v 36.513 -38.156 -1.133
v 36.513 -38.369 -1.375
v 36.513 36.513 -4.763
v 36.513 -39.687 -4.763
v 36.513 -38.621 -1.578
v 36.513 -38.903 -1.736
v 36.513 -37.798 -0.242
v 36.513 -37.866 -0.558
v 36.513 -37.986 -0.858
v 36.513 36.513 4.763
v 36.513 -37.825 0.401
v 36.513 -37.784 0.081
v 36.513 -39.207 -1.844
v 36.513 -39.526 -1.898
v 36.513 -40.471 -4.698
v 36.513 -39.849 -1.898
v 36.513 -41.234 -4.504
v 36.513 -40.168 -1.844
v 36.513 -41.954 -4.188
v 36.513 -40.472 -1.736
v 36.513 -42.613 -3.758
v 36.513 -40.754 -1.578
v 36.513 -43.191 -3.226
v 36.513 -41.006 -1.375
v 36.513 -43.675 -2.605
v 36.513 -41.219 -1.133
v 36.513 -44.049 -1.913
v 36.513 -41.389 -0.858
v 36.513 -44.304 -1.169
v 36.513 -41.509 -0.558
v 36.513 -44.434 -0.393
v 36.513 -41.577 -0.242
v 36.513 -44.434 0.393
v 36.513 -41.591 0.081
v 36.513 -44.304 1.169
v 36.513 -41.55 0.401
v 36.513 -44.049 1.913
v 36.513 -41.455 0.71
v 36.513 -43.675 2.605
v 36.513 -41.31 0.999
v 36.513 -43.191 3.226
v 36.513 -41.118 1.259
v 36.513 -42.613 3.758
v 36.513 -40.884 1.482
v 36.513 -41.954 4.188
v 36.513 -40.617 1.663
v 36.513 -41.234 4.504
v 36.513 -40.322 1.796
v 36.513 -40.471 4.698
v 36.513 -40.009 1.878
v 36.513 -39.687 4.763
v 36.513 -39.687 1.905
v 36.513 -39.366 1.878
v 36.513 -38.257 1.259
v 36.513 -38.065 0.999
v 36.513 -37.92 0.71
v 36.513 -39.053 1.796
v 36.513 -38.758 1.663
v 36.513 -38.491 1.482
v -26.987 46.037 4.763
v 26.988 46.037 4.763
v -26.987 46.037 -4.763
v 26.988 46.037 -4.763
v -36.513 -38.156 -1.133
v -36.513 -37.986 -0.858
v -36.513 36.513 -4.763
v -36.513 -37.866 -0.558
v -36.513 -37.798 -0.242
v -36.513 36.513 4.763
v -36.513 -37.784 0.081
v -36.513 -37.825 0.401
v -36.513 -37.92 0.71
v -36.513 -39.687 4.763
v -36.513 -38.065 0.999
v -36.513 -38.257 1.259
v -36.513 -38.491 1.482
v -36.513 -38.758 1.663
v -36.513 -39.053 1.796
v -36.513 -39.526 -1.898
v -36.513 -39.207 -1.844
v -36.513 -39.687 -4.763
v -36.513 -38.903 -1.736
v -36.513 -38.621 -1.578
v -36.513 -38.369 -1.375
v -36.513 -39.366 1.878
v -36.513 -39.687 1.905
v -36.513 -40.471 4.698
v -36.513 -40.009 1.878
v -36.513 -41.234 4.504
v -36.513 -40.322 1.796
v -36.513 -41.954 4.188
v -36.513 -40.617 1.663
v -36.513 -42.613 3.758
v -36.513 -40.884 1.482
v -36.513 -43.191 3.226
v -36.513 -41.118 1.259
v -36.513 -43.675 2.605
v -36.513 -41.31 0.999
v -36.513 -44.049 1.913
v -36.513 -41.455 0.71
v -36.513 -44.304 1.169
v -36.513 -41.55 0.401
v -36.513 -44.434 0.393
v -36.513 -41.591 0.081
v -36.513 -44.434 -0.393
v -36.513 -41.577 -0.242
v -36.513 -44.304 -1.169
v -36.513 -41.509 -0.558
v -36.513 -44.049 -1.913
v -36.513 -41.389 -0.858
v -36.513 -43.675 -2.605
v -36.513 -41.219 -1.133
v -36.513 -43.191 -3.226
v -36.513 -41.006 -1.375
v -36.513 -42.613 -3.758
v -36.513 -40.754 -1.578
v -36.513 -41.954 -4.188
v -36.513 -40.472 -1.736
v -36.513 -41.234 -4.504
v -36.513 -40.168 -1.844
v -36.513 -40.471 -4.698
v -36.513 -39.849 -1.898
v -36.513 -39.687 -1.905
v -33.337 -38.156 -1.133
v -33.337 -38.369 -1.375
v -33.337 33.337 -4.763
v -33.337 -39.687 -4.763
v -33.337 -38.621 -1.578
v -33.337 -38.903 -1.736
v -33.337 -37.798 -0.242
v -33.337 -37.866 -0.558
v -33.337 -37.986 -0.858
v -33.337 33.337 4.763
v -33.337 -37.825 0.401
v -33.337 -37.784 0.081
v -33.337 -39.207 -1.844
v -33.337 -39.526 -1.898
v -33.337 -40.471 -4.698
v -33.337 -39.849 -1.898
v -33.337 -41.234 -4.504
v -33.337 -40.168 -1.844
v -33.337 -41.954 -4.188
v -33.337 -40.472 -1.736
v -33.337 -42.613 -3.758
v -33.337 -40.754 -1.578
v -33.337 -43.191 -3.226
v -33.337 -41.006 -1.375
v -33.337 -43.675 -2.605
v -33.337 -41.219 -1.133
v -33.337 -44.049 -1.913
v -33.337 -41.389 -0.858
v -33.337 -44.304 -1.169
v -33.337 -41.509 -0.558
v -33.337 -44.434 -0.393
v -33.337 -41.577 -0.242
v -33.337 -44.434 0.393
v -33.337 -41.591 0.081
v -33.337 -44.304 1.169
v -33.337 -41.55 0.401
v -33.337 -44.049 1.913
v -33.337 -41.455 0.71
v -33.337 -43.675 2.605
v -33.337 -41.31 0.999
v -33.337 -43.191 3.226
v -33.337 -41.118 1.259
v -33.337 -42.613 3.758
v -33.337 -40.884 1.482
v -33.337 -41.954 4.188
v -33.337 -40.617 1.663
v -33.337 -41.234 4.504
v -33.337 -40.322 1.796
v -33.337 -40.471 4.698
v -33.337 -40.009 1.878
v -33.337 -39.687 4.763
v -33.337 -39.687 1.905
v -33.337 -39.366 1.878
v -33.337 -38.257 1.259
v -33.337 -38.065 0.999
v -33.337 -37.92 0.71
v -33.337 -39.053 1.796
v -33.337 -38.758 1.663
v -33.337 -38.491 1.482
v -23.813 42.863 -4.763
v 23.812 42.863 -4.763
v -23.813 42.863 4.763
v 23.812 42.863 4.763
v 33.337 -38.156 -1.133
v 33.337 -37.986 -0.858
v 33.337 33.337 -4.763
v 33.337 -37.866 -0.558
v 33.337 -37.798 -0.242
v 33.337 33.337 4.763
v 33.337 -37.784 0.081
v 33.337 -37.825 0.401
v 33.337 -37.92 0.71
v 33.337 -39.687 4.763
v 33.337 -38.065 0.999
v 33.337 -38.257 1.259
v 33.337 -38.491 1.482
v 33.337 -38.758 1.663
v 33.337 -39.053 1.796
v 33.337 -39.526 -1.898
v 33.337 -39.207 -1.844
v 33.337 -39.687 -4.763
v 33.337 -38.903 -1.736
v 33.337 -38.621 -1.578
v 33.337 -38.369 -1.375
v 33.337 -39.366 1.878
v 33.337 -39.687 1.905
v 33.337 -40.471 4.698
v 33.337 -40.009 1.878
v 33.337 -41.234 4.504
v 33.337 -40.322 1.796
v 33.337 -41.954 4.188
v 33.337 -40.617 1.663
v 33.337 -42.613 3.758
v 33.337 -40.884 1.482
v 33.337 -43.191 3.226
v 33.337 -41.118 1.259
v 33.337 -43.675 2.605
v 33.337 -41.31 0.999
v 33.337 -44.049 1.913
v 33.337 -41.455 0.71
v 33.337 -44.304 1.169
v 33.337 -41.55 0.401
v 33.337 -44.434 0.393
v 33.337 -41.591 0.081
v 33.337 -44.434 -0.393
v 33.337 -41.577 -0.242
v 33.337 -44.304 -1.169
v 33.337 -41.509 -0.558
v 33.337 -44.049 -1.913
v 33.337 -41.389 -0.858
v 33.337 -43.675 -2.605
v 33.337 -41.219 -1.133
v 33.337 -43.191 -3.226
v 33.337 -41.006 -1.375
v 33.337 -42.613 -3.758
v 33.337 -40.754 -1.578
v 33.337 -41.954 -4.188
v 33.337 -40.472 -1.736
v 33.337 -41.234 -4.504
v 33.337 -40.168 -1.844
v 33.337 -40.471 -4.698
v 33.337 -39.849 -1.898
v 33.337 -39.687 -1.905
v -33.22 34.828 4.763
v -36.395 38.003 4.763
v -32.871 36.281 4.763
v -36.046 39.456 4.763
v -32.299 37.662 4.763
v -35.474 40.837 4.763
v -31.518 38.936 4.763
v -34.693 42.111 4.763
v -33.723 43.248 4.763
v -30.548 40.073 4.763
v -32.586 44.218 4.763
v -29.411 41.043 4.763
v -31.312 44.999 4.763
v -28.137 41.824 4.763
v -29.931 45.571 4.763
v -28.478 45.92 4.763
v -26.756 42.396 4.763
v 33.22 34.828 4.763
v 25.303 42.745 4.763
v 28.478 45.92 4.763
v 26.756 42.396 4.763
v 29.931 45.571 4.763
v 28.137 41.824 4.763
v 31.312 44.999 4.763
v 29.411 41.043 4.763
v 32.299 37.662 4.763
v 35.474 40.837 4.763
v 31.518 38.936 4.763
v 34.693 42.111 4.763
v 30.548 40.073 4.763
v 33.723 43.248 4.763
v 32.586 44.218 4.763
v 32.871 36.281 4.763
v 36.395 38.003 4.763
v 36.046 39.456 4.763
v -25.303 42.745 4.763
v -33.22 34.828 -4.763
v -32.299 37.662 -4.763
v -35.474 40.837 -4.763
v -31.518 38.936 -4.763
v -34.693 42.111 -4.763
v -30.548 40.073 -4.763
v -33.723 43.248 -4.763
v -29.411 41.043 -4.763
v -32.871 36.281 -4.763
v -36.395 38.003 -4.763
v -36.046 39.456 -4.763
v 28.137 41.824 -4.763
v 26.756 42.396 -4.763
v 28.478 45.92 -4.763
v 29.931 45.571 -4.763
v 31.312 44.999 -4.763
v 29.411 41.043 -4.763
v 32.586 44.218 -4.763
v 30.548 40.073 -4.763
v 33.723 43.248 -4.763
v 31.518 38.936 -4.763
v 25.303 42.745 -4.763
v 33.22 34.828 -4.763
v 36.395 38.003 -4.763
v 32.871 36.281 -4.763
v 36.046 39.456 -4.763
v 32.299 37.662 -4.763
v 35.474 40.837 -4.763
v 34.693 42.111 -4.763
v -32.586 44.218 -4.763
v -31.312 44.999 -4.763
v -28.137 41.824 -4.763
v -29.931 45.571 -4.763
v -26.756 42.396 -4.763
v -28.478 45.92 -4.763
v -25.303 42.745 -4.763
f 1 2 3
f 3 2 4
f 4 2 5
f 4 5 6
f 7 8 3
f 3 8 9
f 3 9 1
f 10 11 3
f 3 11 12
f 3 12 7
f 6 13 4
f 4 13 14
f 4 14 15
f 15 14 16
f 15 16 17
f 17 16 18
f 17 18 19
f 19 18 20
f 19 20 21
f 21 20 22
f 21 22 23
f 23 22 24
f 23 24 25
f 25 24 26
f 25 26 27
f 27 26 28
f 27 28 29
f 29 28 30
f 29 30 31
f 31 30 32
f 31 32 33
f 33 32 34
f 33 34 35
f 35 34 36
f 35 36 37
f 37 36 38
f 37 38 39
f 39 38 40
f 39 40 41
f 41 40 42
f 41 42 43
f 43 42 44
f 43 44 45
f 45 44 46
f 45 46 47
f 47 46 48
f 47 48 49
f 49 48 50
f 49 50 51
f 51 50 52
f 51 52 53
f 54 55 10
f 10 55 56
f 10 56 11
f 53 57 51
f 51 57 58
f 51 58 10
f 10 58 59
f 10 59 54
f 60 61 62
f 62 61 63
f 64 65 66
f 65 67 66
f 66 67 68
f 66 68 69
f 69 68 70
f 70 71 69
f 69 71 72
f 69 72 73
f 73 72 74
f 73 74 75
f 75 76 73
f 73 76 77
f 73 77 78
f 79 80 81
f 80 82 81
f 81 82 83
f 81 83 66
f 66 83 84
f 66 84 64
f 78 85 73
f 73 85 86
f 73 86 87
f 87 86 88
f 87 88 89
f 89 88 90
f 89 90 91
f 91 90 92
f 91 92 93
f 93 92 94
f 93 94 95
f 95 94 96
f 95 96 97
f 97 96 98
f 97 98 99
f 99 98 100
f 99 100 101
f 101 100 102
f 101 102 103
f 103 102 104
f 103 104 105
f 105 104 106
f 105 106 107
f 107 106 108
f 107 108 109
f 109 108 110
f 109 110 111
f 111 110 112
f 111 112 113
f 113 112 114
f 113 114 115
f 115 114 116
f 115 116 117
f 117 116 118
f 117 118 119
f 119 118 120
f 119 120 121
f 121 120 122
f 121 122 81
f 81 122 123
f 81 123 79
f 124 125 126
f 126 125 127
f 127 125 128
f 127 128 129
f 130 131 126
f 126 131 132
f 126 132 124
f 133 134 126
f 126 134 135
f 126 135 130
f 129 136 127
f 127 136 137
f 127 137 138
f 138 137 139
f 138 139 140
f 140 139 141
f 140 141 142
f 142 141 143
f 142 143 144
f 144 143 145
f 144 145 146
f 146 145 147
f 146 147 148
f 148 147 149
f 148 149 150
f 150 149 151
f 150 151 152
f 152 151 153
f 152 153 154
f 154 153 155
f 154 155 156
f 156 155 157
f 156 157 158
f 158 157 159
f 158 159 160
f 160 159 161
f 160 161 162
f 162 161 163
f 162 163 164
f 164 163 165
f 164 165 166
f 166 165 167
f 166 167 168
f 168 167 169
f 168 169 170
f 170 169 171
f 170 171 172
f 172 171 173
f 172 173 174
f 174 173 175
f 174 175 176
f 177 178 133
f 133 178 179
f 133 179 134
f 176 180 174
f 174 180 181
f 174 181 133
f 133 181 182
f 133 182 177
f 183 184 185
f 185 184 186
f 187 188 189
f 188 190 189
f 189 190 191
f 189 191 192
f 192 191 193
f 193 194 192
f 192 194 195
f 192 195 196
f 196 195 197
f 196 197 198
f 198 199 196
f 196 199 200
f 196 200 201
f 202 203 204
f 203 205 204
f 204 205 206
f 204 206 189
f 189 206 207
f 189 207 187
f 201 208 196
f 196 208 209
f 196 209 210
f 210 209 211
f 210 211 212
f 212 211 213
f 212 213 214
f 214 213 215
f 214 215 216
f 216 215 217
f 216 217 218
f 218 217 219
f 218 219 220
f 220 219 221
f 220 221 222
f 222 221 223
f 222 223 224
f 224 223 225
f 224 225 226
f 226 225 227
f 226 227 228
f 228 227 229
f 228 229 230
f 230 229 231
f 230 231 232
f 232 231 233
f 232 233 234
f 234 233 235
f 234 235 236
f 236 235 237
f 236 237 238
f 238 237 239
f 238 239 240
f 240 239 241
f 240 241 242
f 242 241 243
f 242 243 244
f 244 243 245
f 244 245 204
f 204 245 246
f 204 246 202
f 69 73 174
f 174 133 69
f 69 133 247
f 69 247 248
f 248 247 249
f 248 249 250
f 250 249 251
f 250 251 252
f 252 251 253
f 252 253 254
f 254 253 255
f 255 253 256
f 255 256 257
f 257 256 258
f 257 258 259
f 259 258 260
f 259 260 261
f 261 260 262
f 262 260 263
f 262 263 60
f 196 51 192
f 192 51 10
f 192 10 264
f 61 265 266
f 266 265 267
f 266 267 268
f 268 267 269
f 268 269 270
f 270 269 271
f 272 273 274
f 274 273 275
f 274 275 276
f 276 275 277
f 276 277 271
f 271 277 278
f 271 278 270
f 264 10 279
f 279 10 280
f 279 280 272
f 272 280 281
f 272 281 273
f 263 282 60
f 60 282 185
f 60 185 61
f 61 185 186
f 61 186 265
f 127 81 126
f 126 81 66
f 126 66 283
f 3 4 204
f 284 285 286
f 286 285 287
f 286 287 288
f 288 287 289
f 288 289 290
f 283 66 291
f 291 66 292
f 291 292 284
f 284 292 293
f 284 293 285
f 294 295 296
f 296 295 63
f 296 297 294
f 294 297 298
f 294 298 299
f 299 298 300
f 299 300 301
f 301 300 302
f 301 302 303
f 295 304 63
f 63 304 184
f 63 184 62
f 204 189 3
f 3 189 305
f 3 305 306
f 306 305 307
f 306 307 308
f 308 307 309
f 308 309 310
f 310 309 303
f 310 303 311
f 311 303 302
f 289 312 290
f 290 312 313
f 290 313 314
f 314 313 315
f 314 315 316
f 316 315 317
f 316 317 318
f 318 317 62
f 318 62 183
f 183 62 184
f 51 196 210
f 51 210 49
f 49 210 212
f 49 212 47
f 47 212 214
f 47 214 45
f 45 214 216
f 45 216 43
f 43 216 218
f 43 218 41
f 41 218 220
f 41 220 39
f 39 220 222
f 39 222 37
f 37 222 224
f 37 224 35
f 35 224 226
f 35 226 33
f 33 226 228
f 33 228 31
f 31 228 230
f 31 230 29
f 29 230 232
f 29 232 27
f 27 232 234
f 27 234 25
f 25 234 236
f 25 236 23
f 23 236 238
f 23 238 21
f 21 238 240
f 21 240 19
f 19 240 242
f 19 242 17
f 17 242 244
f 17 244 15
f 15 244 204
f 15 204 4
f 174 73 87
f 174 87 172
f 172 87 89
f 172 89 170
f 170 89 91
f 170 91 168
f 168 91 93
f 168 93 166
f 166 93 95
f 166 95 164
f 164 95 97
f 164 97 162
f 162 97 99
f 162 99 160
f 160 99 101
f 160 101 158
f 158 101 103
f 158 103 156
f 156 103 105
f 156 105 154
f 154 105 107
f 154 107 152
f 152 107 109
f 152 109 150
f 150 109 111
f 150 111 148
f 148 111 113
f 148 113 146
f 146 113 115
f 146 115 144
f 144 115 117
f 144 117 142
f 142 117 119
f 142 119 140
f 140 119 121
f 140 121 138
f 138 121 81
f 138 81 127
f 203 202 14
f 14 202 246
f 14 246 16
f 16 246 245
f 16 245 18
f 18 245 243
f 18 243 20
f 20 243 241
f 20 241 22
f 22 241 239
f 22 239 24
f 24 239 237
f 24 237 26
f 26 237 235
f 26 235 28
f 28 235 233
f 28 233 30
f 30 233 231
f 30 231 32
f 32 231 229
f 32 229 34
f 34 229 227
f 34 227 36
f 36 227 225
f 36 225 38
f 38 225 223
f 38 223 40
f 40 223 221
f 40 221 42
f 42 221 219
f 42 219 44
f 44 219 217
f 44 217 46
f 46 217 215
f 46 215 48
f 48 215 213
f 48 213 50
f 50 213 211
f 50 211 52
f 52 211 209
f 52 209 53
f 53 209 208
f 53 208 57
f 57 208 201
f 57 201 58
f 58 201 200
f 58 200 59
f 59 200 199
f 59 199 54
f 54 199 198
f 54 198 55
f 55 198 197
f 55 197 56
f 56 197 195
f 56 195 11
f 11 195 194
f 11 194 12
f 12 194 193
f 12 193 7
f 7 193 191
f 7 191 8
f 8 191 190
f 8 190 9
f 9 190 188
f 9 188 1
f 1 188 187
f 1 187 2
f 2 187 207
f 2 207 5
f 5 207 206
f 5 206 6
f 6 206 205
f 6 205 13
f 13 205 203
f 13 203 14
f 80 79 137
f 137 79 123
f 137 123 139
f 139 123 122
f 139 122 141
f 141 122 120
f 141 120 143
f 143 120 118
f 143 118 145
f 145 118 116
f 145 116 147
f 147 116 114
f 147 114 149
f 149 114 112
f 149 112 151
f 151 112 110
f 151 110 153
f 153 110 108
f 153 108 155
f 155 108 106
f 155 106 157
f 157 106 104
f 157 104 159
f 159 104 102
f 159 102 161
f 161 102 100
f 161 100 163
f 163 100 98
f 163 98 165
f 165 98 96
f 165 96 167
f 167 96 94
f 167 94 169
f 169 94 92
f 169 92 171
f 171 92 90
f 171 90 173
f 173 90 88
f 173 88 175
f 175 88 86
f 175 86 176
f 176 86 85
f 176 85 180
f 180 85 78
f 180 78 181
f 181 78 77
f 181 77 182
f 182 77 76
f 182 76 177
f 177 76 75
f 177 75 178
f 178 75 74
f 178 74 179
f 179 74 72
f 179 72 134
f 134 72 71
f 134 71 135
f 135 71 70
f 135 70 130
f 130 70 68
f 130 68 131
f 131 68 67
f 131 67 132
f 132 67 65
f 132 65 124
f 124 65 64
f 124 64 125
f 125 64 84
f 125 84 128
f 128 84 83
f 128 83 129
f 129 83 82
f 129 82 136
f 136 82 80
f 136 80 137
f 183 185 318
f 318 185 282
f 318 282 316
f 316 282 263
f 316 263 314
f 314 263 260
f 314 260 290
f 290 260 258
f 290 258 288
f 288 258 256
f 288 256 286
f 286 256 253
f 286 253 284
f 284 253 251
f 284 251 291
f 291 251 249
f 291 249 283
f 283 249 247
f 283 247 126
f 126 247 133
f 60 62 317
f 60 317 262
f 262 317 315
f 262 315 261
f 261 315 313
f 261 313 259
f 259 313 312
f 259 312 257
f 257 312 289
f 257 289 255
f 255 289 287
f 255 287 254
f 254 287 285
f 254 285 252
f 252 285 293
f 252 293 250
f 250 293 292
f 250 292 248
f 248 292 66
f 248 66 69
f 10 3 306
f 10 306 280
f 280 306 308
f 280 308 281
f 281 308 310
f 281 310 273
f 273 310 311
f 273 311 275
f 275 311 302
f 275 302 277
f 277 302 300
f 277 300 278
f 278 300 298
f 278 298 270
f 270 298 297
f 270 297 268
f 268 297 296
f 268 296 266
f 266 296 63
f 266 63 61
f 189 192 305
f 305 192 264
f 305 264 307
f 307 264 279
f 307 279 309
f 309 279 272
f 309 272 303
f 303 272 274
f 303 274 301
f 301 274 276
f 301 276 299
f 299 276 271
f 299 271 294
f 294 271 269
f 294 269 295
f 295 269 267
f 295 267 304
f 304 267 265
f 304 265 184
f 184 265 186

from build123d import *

# Parameters (mm, degrees)
BOSS_EXTRUDE1_DEPTH     = 4.7625
SKETCH2_R               = 1.905
CUT_EXTRUDE1_DEPTH      = 1
CUT_EXTRUDE1_DEPTH_BACK = 74.025
FILLET1_R               = 9.525


with BuildPart() as part:
    # Sketch1 → Boss-Extrude1 (new body, symmetric)
    with BuildSketch(Plane.XY):
        Polygon((33.3375, -46.0375), (36.5125, -46.0375), (36.5125, 46.0375), (-36.5125, 46.0375), (-36.5125, -46.0375), (-33.3375, -46.0375), (-33.3375, 42.8625), (33.3375, 42.8625), align=None)
    extrude(amount=BOSS_EXTRUDE1_DEPTH, both=True)

    # Sketch2 → Cut-Extrude1 (cut, two sides)
    with BuildSketch(Plane.ZY.offset(36.5125)) as cut_extrude1_sk:
        with Locations((0, -39.6875)):
            Circle(SKETCH2_R)
        with BuildLine():
            Line((-4.7625, -39.6875), (-4.7625, -46.0375))
            Line((-4.7625, -46.0375), (4.7625, -46.0375))
            Line((4.7625, -46.0375), (4.7625, -39.6875))
            ThreePointArc((4.7625, -39.6875), (0, -44.45), (-4.7625, -39.6875))
        make_face()
    extrude(amount=CUT_EXTRUDE1_DEPTH, mode=Mode.SUBTRACT)
    extrude(cut_extrude1_sk.sketch, amount=-CUT_EXTRUDE1_DEPTH_BACK, mode=Mode.SUBTRACT)

    # Fillet1
    fillet1_edges = [part.edges().sort_by_distance(p)[0] for p in [
        (33.3375, 42.8625, 0),
        (-33.3375, 42.8625, 0),
        (-36.5125, 46.0375, 0),
        (36.5125, 46.0375, 0),
    ]]
    fillet(fillet1_edges, radius=FILLET1_R)


solid = part.part
